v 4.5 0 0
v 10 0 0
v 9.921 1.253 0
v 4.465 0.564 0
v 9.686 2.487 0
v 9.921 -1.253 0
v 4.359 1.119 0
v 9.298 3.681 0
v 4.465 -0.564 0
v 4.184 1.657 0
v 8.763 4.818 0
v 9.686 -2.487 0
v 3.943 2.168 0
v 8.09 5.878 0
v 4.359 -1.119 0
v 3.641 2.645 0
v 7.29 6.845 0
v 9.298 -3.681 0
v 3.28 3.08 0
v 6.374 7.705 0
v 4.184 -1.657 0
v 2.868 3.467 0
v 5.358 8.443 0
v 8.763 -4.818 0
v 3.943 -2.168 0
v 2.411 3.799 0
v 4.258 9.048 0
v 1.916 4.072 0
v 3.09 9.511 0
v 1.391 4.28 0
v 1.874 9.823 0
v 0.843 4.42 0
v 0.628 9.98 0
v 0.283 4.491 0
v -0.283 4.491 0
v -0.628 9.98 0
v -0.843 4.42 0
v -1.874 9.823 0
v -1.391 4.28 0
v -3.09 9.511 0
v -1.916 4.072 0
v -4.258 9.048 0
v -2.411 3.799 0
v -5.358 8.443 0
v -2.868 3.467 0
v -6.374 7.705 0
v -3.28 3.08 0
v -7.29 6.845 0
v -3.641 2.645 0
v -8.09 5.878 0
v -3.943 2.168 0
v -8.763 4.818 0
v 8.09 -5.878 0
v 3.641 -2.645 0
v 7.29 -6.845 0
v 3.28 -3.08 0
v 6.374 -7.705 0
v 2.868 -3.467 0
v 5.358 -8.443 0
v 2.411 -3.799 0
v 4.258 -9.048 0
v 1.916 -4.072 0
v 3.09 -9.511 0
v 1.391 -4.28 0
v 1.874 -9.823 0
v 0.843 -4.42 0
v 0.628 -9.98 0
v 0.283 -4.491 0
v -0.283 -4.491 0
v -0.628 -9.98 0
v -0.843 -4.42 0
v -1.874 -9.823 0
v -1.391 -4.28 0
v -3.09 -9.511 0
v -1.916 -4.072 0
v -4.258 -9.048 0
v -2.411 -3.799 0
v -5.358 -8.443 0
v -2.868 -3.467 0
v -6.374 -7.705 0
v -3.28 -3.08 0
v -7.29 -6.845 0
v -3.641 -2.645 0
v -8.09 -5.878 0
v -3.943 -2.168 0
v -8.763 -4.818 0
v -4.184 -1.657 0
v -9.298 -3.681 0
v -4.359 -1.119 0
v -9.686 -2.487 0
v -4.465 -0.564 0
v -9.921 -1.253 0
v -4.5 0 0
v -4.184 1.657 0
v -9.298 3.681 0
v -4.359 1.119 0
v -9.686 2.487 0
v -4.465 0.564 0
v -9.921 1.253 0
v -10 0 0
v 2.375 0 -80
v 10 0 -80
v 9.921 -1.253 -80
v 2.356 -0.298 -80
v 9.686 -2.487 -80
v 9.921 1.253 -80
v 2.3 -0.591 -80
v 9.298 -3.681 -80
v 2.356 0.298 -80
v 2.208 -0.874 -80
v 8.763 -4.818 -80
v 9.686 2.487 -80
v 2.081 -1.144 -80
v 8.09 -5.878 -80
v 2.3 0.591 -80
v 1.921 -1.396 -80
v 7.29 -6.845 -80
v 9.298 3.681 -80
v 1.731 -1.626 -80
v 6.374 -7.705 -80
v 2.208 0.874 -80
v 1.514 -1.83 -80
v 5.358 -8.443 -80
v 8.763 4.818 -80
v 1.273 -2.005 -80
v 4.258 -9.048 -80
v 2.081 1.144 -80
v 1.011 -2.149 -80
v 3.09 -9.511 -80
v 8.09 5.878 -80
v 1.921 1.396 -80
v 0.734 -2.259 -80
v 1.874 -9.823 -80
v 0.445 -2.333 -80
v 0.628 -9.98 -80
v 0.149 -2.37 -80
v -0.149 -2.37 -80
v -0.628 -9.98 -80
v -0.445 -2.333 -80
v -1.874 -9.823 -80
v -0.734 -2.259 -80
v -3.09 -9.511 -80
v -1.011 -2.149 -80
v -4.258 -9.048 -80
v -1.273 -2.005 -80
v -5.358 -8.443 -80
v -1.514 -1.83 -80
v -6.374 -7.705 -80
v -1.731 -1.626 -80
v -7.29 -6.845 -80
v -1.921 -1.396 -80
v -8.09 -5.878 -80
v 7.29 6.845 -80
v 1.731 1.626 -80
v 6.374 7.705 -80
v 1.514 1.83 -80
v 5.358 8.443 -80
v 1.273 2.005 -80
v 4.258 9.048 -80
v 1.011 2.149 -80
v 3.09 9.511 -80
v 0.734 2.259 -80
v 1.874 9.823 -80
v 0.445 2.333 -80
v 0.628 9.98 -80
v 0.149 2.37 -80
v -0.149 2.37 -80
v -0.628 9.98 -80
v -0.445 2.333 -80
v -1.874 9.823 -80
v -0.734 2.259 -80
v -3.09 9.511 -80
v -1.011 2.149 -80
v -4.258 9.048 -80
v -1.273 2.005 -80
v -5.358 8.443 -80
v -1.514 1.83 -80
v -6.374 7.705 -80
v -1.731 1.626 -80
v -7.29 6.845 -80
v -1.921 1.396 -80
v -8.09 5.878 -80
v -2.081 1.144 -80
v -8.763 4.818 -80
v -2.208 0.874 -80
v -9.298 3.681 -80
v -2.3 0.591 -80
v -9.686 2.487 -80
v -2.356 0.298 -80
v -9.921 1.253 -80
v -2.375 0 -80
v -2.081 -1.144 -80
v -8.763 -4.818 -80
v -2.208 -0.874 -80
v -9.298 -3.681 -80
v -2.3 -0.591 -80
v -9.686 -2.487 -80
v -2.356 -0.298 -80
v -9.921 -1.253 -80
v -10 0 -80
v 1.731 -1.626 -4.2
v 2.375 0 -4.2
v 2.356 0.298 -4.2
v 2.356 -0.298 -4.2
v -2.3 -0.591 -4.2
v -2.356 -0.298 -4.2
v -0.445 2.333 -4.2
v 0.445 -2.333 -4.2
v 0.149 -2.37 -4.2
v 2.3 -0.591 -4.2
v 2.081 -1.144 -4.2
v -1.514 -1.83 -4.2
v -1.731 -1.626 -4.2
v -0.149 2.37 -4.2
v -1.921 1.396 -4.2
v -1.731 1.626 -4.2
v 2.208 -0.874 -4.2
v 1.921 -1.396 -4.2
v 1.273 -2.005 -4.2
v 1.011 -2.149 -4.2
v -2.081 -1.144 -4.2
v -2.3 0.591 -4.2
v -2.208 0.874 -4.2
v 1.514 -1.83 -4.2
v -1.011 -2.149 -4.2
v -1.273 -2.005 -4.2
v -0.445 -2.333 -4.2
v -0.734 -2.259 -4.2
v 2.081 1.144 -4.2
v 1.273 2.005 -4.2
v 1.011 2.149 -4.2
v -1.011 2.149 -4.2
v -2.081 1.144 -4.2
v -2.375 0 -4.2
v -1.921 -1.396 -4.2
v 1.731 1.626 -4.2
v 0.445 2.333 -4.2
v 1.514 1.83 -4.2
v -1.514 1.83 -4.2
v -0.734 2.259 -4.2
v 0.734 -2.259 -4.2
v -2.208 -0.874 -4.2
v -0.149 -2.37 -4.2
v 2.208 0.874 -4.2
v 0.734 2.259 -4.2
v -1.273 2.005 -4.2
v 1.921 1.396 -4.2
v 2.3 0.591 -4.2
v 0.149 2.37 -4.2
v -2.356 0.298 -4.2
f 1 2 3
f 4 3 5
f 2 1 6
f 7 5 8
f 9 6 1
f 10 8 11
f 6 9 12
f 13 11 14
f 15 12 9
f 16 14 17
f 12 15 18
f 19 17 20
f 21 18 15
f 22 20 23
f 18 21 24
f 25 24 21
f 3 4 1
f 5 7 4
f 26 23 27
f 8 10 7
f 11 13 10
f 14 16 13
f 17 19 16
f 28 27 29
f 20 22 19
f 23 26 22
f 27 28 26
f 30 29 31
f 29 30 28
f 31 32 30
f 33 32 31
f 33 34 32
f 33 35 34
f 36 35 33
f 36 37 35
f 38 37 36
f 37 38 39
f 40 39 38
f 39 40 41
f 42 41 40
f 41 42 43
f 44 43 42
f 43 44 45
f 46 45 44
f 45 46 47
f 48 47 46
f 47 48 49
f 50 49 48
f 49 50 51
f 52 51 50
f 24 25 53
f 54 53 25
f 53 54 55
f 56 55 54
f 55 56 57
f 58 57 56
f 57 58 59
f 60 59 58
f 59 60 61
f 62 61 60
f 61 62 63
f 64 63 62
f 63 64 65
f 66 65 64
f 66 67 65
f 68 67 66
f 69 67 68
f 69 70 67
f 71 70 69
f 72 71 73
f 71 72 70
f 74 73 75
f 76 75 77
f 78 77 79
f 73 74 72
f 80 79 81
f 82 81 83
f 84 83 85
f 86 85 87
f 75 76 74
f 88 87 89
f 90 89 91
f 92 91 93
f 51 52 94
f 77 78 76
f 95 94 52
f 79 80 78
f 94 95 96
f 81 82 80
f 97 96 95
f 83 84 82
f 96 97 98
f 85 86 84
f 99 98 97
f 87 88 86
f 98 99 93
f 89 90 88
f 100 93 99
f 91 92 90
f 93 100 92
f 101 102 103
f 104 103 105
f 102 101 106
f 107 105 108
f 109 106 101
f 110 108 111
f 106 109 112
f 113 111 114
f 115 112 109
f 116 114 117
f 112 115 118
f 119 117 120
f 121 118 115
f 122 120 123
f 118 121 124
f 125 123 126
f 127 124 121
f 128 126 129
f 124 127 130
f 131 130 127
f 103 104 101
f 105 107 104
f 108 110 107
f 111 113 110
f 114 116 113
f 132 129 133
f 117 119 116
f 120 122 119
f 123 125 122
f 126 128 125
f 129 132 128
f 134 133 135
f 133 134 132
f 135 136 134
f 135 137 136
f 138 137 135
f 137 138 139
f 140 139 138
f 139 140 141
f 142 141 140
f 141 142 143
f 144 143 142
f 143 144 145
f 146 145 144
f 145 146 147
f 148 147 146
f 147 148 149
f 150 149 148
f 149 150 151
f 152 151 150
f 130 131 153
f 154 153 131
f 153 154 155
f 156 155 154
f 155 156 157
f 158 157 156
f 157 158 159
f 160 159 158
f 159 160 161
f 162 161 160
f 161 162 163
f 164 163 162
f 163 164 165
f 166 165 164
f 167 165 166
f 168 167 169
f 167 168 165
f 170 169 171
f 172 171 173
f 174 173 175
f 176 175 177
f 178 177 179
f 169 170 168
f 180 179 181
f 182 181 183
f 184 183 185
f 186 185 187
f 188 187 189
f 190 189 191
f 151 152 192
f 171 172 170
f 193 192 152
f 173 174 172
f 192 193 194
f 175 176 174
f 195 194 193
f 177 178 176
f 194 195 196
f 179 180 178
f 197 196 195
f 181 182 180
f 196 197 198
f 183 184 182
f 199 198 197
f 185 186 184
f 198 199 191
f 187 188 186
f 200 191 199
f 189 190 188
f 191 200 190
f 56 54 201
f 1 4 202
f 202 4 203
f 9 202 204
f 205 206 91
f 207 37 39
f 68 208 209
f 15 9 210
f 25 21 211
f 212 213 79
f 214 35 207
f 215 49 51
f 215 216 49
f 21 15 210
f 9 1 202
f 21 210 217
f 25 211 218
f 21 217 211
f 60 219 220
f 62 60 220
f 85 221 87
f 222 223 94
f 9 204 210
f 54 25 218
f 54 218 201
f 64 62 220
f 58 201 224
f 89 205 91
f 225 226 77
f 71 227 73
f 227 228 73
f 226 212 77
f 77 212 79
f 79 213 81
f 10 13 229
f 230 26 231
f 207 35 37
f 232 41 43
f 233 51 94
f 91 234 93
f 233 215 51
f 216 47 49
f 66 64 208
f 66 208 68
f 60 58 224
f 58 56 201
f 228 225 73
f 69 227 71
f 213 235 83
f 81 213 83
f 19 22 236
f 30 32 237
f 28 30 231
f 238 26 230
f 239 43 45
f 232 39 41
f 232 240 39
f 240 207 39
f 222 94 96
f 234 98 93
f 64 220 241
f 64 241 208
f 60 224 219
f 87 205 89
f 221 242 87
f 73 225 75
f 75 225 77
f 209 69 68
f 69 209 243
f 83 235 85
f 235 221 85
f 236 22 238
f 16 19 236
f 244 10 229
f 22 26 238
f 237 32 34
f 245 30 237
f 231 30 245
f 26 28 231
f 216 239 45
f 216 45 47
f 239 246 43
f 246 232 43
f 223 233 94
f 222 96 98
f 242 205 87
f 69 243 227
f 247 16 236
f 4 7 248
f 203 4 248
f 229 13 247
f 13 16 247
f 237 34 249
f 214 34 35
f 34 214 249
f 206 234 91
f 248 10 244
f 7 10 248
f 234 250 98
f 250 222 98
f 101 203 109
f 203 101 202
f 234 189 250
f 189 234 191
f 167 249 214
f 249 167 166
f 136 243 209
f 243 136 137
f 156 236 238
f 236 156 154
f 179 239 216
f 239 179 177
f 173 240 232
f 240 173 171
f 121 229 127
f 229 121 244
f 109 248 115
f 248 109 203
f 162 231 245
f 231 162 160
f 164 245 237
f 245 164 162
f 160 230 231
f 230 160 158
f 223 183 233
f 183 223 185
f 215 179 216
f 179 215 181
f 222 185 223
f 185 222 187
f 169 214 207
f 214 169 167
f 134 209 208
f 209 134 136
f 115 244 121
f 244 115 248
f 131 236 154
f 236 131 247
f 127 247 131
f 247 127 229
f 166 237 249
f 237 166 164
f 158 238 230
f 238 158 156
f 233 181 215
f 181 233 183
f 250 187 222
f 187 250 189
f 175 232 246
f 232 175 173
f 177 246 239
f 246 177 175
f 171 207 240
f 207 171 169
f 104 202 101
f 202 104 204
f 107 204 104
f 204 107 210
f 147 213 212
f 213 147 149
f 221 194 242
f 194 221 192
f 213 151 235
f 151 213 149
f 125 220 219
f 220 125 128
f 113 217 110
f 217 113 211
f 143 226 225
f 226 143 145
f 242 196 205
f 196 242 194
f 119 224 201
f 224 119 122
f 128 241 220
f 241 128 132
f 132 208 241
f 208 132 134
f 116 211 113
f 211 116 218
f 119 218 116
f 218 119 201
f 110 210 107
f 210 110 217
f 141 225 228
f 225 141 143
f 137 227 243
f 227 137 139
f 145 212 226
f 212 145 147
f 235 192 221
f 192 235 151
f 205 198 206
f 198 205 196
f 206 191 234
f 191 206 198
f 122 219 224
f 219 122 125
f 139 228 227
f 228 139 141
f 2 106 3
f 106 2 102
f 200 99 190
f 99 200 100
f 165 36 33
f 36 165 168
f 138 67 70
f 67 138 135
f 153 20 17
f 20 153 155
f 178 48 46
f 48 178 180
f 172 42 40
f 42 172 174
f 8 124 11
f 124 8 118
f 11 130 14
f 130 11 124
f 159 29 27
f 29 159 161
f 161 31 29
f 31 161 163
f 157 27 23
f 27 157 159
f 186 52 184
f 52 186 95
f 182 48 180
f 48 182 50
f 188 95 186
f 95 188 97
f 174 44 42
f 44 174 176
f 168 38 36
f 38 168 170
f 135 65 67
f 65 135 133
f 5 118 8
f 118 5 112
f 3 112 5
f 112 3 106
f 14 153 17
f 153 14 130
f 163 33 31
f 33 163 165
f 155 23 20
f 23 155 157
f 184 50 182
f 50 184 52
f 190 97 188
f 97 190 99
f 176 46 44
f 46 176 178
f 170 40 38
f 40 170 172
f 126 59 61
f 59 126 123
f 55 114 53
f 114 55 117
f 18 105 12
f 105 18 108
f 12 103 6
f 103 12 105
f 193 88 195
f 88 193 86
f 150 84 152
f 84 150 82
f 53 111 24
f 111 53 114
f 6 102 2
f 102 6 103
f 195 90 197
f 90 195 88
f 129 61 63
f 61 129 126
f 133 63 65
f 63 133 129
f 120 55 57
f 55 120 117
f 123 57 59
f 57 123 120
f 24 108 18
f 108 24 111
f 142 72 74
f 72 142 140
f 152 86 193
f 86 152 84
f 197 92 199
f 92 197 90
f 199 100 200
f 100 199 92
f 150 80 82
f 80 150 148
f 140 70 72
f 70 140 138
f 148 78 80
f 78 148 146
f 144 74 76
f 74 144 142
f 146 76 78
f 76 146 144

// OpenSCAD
$fn = 50;


difference() {
	union() {
		translate(v = [0, 0, -80.0000000000]) {
			cylinder(h = 80, r = 10.0000000000);
		}
		cylinder(h = 0, r = 20.0000000000);
	}
	union() {
		translate(v = [0, 0, 0]) {
			rotate(a = [0, 0, 0]) {
				difference() {
					union() {
						#translate(v = [0, 0, -80.0000000000]) {
							cylinder(h = 80, r = 2.2500000000);
						}
						#translate(v = [0, 0, -4.2000000000]) {
							cylinder(h = 4.2000000000, r = 10.0000000000, r1 = 2.3750000000, r2 = 4.5000000000);
						}
						#translate(v = [0, 0, -80.0000000000]) {
							cylinder(h = 80, r = 2.3750000000);
						}
						#translate(v = [0, 0, -80.0000000000]) {
							cylinder(h = 80, r = 2.2500000000);
						}
					}
					union();
				}
			}
		}
	}
}
